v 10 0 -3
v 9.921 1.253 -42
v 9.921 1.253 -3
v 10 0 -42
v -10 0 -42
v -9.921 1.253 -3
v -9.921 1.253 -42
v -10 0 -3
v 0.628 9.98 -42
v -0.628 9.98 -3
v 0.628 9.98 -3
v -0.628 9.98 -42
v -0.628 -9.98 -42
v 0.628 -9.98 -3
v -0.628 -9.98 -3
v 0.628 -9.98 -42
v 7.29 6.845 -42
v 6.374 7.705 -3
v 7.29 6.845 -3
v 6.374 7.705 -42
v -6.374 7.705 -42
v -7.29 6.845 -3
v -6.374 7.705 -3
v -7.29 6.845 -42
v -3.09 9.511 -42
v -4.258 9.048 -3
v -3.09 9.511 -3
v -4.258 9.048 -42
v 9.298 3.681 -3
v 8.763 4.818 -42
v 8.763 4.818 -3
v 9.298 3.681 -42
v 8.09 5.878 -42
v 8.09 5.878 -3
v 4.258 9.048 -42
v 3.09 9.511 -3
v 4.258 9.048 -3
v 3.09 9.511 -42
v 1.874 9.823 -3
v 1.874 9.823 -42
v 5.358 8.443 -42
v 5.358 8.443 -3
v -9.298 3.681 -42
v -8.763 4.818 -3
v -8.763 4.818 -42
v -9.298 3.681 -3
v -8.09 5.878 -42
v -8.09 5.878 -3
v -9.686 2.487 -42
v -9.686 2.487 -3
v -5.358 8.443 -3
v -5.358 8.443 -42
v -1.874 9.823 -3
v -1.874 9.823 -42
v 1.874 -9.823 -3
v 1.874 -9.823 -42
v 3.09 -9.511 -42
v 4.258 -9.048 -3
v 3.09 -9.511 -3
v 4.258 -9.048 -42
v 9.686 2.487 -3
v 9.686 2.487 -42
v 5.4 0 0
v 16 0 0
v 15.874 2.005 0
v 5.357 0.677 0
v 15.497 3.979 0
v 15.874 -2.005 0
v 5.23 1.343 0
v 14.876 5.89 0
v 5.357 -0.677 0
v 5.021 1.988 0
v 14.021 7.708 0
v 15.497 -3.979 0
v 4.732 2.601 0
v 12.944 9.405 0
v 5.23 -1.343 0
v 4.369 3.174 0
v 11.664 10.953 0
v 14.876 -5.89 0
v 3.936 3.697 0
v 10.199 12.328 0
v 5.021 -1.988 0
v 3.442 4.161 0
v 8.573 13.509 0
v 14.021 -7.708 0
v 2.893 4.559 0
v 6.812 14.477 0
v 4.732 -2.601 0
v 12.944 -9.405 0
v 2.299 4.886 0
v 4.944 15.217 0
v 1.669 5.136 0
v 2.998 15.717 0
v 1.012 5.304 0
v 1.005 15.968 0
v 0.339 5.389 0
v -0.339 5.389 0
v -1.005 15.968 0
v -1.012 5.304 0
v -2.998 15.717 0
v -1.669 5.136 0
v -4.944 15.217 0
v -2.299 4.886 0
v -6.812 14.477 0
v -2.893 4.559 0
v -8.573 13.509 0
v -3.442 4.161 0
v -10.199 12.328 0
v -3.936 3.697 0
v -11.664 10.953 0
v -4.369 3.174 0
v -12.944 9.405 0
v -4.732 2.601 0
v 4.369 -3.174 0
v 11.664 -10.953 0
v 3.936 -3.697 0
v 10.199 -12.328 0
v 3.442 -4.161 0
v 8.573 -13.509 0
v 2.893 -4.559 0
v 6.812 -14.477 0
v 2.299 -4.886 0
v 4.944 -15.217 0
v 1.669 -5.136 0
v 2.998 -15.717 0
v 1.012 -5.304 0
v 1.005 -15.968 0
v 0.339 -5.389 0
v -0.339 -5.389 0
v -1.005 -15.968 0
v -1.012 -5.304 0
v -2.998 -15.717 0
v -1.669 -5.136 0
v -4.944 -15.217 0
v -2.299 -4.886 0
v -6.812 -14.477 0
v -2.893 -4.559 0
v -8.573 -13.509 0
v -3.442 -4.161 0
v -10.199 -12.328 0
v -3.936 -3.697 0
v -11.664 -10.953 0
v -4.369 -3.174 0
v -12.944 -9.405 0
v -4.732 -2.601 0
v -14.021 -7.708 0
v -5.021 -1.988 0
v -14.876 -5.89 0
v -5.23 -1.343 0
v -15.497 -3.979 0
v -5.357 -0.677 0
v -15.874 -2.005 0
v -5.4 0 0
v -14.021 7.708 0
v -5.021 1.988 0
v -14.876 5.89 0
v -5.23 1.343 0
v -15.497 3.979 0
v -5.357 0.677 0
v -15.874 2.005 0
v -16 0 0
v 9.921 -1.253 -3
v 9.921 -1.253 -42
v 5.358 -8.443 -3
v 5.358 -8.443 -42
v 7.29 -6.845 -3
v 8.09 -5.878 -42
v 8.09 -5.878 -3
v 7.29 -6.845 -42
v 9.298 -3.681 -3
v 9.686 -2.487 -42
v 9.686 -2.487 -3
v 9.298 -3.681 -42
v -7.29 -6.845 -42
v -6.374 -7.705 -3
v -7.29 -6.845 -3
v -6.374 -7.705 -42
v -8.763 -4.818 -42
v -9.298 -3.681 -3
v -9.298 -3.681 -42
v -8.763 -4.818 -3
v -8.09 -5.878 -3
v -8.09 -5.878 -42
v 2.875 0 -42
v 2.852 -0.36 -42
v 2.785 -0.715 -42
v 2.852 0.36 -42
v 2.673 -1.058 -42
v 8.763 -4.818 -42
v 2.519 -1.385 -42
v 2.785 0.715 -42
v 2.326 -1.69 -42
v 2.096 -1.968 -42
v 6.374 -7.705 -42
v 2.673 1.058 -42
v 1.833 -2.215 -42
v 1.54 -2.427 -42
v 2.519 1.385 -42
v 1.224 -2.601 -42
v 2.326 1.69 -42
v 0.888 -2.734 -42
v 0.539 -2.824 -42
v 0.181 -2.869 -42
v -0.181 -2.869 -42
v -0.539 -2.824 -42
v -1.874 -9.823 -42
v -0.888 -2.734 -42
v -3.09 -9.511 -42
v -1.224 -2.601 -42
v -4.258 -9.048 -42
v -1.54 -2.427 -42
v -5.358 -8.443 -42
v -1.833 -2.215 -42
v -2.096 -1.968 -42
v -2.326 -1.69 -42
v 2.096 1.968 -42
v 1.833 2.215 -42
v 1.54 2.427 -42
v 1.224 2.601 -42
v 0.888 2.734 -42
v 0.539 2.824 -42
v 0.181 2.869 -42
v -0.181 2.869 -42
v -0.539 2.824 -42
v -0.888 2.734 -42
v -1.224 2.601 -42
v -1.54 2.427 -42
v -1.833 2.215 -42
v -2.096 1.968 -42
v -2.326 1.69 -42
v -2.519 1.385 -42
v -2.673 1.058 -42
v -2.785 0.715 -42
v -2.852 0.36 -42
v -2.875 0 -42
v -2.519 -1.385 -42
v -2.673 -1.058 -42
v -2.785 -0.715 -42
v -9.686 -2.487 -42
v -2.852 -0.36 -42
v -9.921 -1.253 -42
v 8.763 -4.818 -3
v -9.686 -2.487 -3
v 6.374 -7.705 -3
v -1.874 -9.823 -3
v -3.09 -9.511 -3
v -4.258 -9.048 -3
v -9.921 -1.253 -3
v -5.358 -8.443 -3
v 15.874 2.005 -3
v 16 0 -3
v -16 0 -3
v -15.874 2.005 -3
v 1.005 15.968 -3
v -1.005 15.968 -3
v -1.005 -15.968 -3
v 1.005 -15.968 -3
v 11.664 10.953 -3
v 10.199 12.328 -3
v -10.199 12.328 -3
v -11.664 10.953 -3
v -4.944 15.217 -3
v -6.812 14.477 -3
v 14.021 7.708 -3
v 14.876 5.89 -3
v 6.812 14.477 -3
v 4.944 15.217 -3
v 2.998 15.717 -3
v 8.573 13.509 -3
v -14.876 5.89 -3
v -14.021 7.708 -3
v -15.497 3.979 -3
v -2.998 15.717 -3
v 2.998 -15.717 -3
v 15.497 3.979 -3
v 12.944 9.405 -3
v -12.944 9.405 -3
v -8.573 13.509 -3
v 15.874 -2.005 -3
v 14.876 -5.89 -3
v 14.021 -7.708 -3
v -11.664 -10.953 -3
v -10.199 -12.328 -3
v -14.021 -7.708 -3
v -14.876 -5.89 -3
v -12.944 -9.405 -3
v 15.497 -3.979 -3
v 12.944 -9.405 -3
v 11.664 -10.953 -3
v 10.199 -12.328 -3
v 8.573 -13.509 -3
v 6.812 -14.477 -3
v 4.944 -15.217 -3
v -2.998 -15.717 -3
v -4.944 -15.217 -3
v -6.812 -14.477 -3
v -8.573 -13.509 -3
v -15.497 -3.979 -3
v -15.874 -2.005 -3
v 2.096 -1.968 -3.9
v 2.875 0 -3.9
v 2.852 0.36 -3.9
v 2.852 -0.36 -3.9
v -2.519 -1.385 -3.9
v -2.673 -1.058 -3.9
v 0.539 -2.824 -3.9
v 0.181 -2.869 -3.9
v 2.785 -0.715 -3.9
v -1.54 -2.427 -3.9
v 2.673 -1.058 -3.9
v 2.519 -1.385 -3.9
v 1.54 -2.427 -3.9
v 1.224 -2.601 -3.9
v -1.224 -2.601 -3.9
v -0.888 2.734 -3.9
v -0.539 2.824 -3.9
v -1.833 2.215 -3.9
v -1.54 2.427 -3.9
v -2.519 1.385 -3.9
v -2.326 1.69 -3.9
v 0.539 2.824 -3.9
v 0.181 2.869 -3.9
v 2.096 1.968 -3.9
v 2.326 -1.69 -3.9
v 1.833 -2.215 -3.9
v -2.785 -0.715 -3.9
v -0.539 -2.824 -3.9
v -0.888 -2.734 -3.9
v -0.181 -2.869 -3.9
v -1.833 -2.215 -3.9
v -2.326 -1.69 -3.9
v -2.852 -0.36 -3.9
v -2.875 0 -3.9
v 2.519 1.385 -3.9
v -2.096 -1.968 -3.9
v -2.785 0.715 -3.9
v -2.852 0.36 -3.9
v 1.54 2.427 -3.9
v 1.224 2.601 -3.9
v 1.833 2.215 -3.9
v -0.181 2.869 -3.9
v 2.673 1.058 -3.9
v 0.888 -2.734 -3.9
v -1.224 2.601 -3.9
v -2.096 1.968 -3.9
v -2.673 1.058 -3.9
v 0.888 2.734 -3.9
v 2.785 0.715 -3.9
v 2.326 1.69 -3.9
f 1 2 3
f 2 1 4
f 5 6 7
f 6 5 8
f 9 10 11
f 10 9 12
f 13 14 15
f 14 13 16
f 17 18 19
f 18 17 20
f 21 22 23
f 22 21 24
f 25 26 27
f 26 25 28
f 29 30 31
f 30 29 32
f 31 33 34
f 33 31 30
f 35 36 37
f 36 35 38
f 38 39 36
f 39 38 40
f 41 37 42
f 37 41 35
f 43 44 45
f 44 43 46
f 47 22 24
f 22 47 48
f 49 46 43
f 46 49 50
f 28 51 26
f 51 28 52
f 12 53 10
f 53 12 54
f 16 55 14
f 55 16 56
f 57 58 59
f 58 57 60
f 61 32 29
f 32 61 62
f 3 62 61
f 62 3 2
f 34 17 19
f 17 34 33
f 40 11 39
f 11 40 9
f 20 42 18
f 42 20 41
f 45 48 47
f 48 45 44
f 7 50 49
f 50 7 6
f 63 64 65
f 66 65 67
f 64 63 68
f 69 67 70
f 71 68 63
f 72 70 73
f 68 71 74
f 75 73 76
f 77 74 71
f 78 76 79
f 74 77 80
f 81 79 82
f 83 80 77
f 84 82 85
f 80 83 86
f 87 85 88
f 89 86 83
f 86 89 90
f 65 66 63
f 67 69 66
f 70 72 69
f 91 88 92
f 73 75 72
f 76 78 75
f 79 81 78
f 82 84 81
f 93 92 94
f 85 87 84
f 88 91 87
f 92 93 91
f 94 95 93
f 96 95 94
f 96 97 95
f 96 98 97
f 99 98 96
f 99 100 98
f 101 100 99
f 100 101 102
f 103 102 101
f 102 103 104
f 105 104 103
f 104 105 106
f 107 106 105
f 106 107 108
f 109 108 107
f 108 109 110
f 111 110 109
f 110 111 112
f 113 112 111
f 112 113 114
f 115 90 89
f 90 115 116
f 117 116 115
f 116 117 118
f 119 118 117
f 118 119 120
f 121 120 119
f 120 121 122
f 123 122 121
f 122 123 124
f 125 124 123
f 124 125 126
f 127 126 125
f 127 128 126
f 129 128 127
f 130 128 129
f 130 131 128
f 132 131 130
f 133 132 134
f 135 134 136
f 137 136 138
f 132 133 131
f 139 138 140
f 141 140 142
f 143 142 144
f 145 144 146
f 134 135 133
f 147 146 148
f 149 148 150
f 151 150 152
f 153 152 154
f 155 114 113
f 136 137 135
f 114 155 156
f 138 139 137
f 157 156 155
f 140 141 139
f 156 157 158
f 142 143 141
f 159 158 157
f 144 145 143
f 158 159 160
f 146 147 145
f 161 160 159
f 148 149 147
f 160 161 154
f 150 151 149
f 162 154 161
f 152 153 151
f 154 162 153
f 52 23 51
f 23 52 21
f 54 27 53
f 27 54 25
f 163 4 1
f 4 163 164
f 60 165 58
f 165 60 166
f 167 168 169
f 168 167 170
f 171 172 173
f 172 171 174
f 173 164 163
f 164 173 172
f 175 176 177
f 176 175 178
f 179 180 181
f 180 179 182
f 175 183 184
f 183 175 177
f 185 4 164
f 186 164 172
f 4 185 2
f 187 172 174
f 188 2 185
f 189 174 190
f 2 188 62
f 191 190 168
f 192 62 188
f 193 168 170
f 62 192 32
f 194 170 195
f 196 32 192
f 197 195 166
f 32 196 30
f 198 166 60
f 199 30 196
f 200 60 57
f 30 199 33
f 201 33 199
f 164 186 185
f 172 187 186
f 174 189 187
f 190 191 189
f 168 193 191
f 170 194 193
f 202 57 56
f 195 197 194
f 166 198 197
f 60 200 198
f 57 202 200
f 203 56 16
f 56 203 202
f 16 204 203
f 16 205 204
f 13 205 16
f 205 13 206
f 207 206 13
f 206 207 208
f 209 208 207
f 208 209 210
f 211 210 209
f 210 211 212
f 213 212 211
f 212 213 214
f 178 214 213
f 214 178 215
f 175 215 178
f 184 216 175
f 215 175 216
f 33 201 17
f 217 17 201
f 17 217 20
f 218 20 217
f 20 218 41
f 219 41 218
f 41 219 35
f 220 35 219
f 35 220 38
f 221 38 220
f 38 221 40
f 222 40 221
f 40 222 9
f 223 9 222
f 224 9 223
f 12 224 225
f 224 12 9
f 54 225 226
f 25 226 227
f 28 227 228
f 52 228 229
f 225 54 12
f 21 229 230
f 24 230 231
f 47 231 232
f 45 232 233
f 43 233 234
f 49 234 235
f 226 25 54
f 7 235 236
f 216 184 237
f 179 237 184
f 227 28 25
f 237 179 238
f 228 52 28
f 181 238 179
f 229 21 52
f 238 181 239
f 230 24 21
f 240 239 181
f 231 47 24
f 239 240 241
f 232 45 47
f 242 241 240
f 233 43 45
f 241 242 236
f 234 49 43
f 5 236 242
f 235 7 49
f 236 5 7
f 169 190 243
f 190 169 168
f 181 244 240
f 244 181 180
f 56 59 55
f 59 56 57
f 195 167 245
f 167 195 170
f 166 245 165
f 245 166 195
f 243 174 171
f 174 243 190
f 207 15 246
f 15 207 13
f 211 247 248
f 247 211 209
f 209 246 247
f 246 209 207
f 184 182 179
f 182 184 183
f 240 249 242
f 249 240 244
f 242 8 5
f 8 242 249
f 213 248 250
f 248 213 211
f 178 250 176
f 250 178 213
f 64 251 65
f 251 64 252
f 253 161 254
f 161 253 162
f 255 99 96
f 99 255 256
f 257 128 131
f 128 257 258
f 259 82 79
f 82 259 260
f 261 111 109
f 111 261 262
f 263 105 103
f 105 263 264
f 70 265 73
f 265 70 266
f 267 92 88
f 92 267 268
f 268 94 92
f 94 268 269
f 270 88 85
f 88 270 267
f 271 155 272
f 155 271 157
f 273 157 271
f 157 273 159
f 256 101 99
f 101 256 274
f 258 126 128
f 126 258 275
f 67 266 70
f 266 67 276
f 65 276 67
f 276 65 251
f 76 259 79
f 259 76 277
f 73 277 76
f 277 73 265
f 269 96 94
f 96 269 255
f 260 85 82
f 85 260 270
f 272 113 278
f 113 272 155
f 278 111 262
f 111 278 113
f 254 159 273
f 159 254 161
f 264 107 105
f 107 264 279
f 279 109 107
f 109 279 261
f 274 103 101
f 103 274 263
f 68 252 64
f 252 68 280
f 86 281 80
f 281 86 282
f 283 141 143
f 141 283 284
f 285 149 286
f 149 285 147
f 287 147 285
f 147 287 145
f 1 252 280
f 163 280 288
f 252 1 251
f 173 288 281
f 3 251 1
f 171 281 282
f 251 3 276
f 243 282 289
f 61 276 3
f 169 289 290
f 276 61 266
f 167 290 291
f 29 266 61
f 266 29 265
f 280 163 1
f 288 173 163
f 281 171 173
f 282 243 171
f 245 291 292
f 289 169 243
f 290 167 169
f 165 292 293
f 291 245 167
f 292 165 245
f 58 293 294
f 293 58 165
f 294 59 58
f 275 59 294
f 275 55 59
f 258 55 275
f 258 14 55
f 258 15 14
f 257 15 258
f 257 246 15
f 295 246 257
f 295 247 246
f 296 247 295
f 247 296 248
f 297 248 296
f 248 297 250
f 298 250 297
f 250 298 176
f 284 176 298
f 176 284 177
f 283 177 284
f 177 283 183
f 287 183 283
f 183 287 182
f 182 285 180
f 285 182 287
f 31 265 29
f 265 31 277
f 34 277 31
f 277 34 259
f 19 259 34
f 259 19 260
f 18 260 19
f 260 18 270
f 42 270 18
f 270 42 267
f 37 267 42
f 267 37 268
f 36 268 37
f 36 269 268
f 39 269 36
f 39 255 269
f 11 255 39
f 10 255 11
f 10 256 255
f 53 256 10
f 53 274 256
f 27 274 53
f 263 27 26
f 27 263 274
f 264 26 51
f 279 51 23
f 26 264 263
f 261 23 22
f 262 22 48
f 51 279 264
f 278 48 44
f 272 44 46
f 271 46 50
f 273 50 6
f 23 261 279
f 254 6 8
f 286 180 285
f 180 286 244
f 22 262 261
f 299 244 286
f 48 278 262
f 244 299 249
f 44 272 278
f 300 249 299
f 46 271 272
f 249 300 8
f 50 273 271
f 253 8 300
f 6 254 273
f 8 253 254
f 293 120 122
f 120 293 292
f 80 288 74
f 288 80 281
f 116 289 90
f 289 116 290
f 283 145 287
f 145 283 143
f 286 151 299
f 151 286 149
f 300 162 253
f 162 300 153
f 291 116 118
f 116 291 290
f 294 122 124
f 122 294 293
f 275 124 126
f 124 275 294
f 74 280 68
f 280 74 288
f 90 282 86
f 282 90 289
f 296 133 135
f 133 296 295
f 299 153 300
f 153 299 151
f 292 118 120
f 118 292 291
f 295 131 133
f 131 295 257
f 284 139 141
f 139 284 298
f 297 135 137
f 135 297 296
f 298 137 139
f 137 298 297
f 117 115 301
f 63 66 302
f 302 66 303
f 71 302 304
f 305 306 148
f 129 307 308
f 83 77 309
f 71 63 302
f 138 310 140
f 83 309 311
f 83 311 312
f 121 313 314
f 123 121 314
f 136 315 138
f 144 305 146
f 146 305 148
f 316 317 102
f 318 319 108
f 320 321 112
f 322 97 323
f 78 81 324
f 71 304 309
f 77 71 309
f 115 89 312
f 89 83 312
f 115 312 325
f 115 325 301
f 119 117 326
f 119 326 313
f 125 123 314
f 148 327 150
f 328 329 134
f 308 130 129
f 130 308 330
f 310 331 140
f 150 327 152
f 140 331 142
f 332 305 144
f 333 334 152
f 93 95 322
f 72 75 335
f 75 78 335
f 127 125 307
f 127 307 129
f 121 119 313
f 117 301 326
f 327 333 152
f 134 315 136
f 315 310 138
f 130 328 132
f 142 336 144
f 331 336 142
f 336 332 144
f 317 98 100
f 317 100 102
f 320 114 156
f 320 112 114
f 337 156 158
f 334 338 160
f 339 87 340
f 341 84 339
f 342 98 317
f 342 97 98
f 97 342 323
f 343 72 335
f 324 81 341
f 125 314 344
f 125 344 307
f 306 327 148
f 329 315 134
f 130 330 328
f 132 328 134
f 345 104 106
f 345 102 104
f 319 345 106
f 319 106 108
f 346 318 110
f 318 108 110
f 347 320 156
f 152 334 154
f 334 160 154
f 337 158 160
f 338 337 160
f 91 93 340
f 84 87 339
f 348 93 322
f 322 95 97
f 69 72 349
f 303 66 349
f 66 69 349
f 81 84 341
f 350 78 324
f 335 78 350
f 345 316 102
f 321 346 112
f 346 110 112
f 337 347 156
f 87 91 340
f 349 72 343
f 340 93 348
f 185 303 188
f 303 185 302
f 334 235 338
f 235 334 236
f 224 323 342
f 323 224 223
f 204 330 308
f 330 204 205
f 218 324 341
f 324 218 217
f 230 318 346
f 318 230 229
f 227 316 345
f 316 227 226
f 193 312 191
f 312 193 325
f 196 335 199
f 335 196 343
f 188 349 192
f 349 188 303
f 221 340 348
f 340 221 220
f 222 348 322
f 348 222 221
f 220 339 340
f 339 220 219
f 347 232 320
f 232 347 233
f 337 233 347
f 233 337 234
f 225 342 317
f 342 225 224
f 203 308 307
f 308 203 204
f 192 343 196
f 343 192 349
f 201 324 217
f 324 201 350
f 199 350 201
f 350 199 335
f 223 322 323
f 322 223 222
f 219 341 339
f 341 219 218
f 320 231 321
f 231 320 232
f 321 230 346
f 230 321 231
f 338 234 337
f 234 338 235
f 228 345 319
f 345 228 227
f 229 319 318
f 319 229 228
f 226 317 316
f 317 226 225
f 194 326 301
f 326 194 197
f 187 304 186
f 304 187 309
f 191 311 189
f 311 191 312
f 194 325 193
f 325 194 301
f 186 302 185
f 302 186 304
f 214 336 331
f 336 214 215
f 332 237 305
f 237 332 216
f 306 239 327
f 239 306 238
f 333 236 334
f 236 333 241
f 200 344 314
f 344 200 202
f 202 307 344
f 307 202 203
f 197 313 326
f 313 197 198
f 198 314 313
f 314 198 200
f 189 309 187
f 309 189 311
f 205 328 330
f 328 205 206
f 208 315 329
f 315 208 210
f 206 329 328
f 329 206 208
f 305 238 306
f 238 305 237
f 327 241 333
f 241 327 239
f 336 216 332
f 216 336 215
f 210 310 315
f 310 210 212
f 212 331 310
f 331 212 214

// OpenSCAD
$fn = 50;


difference() {
	union() {
		translate(v = [0, 0, -42.0000000000]) {
			cylinder(h = 42, r = 10.0000000000);
		}
		translate(v = [0, 0, -3.0000000000]) {
			cylinder(h = 3, r = 16.0000000000);
		}
	}
	union() {
		translate(v = [0, 0, 0]) {
			rotate(a = [0, 0, 0]) {
				difference() {
					union() {
						#translate(v = [0, 0, -42.0000000000]) {
							cylinder(h = 42, r = 2.6000000000);
						}
						#translate(v = [0, 0, -3.9000000000]) {
							cylinder(h = 3.9000000000, r = 10.0000000000, r1 = 2.8750000000, r2 = 5.4000000000);
						}
						#translate(v = [0, 0, -42.0000000000]) {
							cylinder(h = 42, r = 2.8750000000);
						}
						#translate(v = [0, 0, -42.0000000000]) {
							cylinder(h = 42, r = 2.6000000000);
						}
					}
					union();
				}
			}
		}
	}
}
